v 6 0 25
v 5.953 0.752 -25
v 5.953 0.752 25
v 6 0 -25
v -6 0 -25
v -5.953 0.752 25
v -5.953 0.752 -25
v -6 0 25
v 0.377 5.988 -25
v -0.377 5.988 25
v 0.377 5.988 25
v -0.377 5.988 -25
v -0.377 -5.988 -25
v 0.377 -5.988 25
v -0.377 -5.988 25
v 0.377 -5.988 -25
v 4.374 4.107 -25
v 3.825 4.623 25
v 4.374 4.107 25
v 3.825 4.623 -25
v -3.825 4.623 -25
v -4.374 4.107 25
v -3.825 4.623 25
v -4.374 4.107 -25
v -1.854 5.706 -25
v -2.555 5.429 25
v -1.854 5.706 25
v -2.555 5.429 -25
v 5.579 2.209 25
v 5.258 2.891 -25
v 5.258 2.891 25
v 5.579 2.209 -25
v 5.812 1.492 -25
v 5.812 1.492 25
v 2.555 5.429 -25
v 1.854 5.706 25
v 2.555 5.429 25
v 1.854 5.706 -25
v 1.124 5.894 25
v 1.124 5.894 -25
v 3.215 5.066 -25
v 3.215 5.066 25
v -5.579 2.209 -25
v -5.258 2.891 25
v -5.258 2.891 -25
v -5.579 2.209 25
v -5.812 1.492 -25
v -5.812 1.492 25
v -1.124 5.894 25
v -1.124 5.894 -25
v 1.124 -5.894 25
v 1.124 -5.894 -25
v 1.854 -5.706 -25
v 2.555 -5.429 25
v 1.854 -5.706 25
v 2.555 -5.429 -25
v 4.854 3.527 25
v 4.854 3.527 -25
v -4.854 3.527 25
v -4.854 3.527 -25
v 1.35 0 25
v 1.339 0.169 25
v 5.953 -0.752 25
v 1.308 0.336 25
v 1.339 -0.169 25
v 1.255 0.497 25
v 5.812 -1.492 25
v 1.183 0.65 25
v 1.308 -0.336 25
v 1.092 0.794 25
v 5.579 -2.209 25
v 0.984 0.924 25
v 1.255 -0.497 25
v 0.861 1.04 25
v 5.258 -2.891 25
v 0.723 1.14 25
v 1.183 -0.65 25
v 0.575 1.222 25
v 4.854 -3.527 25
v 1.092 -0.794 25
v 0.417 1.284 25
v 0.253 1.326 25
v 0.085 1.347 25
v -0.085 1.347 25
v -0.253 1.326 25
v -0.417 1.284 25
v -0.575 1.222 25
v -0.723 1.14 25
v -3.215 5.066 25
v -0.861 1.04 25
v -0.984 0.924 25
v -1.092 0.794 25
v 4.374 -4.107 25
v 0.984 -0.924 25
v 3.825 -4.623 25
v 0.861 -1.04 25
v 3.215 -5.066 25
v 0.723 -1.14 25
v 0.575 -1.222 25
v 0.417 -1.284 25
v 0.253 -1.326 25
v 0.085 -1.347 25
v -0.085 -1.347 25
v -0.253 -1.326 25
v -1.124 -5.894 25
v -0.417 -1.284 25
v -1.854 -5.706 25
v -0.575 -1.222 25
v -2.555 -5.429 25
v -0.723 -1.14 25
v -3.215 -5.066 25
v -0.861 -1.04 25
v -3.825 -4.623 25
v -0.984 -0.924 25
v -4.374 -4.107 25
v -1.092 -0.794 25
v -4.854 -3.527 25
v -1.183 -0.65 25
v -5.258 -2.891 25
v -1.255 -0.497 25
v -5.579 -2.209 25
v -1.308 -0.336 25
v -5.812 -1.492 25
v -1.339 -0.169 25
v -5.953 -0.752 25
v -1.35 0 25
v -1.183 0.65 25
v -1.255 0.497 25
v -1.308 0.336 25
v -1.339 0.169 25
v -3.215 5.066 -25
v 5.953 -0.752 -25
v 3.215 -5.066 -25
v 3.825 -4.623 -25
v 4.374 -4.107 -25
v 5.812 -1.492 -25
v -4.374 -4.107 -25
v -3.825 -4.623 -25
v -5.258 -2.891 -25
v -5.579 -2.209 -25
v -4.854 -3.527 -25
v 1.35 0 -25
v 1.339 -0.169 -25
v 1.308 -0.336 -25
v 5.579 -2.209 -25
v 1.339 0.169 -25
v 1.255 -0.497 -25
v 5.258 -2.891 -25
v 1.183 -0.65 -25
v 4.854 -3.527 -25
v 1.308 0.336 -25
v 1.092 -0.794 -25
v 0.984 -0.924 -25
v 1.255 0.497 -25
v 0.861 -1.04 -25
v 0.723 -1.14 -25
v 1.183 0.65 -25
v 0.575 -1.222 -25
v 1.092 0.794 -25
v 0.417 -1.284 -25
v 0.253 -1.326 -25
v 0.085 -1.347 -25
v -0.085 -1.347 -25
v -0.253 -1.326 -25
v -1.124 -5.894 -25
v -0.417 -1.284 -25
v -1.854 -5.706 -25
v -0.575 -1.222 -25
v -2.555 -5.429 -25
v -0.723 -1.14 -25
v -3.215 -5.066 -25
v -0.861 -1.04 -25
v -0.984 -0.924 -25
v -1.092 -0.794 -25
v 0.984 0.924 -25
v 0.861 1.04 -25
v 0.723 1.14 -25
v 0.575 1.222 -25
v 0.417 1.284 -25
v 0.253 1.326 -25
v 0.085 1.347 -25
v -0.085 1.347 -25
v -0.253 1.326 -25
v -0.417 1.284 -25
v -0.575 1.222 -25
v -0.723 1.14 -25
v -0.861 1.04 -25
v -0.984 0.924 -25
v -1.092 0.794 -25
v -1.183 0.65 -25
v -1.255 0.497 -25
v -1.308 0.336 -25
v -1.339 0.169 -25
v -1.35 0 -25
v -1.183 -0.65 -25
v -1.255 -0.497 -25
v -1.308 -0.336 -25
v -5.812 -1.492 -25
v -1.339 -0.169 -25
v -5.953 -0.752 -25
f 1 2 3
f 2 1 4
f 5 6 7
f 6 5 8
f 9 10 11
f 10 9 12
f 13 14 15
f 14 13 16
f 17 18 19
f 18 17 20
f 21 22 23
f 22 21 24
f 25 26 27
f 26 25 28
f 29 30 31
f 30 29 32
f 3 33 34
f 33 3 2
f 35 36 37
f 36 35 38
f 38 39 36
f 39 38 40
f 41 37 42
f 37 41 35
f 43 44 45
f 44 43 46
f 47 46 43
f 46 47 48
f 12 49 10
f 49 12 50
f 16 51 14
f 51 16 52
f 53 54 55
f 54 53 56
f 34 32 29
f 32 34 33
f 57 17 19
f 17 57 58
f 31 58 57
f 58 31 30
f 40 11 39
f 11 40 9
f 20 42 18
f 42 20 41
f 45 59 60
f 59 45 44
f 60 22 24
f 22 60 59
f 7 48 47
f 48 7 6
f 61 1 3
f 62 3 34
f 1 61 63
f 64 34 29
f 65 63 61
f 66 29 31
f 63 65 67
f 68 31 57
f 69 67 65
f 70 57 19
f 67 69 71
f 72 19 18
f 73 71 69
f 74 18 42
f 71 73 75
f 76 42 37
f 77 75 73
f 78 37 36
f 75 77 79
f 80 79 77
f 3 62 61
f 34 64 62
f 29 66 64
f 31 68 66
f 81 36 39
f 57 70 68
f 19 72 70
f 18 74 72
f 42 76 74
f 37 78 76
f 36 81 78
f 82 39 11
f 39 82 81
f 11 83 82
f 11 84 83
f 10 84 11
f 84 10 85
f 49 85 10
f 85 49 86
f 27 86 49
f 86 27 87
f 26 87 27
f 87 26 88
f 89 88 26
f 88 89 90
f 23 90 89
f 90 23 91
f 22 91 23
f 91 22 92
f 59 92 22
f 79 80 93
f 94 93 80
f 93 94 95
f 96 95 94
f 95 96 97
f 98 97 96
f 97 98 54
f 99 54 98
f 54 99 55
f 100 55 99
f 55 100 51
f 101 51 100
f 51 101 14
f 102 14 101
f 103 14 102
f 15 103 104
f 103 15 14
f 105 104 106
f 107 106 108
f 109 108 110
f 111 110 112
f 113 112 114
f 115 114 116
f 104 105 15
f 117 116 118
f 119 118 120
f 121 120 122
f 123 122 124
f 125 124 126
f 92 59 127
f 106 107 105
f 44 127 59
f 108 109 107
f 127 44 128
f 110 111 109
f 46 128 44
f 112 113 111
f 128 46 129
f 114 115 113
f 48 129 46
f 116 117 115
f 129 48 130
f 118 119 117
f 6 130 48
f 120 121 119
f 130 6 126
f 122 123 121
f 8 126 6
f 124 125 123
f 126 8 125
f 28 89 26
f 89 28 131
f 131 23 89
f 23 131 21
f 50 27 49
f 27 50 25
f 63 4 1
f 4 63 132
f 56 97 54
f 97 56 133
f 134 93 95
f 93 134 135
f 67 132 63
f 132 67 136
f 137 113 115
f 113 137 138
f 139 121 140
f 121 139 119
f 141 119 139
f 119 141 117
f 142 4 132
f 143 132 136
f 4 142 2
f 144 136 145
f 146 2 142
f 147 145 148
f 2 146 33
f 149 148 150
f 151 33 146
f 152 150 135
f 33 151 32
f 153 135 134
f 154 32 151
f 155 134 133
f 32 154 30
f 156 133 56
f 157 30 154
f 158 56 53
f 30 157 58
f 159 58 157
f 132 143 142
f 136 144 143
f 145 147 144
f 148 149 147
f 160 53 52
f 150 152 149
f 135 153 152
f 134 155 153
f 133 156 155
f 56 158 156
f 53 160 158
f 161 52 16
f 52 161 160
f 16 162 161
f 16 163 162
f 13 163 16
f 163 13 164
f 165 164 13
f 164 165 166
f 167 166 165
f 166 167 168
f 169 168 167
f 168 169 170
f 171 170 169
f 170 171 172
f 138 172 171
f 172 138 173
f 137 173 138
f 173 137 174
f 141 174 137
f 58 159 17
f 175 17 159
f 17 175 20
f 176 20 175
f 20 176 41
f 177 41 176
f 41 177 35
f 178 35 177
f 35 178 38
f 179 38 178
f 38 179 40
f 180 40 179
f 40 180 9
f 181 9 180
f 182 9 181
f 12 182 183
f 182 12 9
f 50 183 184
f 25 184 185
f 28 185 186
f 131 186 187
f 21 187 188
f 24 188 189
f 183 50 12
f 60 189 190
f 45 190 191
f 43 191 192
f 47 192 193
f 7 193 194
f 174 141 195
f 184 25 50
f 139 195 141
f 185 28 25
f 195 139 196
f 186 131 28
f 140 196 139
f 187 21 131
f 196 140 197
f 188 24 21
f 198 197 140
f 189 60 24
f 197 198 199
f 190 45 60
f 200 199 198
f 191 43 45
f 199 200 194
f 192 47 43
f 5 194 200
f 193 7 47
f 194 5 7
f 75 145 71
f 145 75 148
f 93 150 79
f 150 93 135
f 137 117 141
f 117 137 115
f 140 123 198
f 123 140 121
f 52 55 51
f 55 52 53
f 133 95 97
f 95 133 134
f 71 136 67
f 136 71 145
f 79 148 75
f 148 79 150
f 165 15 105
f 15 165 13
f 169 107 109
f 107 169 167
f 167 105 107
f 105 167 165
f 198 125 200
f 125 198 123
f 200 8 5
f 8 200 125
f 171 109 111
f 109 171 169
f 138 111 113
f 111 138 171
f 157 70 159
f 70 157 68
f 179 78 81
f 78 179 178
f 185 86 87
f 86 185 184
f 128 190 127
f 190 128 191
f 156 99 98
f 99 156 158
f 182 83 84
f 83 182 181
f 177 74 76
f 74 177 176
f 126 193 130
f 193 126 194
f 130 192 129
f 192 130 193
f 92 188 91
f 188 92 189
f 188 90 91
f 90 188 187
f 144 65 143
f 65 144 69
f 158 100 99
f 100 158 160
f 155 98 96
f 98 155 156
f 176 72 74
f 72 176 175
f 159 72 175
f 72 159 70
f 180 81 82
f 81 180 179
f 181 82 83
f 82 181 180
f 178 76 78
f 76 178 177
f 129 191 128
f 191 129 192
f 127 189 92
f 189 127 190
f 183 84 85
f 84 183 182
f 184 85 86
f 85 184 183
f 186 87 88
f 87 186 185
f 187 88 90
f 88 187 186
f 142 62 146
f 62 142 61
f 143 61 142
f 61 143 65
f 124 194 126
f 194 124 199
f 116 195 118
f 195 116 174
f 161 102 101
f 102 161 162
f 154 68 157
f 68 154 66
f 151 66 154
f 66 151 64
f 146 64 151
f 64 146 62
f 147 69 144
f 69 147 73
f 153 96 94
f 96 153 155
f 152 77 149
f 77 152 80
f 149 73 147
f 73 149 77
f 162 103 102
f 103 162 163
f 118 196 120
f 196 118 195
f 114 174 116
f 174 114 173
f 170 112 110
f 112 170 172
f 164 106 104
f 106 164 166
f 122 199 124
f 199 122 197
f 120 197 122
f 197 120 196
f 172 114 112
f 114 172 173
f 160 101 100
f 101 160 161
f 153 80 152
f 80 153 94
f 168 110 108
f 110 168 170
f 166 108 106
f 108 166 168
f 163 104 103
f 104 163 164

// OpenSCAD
$fn = 50;


difference() {
	union() {
		translate(v = [0, 0, -25.0000000000]) {
			cylinder(h = 50, r = 6.0000000000);
		}
	}
	union() {
		translate(v = [0, 0, -100.0000000000]) {
			cylinder(h = 200, r = 1.3500000000);
		}
	}
}
